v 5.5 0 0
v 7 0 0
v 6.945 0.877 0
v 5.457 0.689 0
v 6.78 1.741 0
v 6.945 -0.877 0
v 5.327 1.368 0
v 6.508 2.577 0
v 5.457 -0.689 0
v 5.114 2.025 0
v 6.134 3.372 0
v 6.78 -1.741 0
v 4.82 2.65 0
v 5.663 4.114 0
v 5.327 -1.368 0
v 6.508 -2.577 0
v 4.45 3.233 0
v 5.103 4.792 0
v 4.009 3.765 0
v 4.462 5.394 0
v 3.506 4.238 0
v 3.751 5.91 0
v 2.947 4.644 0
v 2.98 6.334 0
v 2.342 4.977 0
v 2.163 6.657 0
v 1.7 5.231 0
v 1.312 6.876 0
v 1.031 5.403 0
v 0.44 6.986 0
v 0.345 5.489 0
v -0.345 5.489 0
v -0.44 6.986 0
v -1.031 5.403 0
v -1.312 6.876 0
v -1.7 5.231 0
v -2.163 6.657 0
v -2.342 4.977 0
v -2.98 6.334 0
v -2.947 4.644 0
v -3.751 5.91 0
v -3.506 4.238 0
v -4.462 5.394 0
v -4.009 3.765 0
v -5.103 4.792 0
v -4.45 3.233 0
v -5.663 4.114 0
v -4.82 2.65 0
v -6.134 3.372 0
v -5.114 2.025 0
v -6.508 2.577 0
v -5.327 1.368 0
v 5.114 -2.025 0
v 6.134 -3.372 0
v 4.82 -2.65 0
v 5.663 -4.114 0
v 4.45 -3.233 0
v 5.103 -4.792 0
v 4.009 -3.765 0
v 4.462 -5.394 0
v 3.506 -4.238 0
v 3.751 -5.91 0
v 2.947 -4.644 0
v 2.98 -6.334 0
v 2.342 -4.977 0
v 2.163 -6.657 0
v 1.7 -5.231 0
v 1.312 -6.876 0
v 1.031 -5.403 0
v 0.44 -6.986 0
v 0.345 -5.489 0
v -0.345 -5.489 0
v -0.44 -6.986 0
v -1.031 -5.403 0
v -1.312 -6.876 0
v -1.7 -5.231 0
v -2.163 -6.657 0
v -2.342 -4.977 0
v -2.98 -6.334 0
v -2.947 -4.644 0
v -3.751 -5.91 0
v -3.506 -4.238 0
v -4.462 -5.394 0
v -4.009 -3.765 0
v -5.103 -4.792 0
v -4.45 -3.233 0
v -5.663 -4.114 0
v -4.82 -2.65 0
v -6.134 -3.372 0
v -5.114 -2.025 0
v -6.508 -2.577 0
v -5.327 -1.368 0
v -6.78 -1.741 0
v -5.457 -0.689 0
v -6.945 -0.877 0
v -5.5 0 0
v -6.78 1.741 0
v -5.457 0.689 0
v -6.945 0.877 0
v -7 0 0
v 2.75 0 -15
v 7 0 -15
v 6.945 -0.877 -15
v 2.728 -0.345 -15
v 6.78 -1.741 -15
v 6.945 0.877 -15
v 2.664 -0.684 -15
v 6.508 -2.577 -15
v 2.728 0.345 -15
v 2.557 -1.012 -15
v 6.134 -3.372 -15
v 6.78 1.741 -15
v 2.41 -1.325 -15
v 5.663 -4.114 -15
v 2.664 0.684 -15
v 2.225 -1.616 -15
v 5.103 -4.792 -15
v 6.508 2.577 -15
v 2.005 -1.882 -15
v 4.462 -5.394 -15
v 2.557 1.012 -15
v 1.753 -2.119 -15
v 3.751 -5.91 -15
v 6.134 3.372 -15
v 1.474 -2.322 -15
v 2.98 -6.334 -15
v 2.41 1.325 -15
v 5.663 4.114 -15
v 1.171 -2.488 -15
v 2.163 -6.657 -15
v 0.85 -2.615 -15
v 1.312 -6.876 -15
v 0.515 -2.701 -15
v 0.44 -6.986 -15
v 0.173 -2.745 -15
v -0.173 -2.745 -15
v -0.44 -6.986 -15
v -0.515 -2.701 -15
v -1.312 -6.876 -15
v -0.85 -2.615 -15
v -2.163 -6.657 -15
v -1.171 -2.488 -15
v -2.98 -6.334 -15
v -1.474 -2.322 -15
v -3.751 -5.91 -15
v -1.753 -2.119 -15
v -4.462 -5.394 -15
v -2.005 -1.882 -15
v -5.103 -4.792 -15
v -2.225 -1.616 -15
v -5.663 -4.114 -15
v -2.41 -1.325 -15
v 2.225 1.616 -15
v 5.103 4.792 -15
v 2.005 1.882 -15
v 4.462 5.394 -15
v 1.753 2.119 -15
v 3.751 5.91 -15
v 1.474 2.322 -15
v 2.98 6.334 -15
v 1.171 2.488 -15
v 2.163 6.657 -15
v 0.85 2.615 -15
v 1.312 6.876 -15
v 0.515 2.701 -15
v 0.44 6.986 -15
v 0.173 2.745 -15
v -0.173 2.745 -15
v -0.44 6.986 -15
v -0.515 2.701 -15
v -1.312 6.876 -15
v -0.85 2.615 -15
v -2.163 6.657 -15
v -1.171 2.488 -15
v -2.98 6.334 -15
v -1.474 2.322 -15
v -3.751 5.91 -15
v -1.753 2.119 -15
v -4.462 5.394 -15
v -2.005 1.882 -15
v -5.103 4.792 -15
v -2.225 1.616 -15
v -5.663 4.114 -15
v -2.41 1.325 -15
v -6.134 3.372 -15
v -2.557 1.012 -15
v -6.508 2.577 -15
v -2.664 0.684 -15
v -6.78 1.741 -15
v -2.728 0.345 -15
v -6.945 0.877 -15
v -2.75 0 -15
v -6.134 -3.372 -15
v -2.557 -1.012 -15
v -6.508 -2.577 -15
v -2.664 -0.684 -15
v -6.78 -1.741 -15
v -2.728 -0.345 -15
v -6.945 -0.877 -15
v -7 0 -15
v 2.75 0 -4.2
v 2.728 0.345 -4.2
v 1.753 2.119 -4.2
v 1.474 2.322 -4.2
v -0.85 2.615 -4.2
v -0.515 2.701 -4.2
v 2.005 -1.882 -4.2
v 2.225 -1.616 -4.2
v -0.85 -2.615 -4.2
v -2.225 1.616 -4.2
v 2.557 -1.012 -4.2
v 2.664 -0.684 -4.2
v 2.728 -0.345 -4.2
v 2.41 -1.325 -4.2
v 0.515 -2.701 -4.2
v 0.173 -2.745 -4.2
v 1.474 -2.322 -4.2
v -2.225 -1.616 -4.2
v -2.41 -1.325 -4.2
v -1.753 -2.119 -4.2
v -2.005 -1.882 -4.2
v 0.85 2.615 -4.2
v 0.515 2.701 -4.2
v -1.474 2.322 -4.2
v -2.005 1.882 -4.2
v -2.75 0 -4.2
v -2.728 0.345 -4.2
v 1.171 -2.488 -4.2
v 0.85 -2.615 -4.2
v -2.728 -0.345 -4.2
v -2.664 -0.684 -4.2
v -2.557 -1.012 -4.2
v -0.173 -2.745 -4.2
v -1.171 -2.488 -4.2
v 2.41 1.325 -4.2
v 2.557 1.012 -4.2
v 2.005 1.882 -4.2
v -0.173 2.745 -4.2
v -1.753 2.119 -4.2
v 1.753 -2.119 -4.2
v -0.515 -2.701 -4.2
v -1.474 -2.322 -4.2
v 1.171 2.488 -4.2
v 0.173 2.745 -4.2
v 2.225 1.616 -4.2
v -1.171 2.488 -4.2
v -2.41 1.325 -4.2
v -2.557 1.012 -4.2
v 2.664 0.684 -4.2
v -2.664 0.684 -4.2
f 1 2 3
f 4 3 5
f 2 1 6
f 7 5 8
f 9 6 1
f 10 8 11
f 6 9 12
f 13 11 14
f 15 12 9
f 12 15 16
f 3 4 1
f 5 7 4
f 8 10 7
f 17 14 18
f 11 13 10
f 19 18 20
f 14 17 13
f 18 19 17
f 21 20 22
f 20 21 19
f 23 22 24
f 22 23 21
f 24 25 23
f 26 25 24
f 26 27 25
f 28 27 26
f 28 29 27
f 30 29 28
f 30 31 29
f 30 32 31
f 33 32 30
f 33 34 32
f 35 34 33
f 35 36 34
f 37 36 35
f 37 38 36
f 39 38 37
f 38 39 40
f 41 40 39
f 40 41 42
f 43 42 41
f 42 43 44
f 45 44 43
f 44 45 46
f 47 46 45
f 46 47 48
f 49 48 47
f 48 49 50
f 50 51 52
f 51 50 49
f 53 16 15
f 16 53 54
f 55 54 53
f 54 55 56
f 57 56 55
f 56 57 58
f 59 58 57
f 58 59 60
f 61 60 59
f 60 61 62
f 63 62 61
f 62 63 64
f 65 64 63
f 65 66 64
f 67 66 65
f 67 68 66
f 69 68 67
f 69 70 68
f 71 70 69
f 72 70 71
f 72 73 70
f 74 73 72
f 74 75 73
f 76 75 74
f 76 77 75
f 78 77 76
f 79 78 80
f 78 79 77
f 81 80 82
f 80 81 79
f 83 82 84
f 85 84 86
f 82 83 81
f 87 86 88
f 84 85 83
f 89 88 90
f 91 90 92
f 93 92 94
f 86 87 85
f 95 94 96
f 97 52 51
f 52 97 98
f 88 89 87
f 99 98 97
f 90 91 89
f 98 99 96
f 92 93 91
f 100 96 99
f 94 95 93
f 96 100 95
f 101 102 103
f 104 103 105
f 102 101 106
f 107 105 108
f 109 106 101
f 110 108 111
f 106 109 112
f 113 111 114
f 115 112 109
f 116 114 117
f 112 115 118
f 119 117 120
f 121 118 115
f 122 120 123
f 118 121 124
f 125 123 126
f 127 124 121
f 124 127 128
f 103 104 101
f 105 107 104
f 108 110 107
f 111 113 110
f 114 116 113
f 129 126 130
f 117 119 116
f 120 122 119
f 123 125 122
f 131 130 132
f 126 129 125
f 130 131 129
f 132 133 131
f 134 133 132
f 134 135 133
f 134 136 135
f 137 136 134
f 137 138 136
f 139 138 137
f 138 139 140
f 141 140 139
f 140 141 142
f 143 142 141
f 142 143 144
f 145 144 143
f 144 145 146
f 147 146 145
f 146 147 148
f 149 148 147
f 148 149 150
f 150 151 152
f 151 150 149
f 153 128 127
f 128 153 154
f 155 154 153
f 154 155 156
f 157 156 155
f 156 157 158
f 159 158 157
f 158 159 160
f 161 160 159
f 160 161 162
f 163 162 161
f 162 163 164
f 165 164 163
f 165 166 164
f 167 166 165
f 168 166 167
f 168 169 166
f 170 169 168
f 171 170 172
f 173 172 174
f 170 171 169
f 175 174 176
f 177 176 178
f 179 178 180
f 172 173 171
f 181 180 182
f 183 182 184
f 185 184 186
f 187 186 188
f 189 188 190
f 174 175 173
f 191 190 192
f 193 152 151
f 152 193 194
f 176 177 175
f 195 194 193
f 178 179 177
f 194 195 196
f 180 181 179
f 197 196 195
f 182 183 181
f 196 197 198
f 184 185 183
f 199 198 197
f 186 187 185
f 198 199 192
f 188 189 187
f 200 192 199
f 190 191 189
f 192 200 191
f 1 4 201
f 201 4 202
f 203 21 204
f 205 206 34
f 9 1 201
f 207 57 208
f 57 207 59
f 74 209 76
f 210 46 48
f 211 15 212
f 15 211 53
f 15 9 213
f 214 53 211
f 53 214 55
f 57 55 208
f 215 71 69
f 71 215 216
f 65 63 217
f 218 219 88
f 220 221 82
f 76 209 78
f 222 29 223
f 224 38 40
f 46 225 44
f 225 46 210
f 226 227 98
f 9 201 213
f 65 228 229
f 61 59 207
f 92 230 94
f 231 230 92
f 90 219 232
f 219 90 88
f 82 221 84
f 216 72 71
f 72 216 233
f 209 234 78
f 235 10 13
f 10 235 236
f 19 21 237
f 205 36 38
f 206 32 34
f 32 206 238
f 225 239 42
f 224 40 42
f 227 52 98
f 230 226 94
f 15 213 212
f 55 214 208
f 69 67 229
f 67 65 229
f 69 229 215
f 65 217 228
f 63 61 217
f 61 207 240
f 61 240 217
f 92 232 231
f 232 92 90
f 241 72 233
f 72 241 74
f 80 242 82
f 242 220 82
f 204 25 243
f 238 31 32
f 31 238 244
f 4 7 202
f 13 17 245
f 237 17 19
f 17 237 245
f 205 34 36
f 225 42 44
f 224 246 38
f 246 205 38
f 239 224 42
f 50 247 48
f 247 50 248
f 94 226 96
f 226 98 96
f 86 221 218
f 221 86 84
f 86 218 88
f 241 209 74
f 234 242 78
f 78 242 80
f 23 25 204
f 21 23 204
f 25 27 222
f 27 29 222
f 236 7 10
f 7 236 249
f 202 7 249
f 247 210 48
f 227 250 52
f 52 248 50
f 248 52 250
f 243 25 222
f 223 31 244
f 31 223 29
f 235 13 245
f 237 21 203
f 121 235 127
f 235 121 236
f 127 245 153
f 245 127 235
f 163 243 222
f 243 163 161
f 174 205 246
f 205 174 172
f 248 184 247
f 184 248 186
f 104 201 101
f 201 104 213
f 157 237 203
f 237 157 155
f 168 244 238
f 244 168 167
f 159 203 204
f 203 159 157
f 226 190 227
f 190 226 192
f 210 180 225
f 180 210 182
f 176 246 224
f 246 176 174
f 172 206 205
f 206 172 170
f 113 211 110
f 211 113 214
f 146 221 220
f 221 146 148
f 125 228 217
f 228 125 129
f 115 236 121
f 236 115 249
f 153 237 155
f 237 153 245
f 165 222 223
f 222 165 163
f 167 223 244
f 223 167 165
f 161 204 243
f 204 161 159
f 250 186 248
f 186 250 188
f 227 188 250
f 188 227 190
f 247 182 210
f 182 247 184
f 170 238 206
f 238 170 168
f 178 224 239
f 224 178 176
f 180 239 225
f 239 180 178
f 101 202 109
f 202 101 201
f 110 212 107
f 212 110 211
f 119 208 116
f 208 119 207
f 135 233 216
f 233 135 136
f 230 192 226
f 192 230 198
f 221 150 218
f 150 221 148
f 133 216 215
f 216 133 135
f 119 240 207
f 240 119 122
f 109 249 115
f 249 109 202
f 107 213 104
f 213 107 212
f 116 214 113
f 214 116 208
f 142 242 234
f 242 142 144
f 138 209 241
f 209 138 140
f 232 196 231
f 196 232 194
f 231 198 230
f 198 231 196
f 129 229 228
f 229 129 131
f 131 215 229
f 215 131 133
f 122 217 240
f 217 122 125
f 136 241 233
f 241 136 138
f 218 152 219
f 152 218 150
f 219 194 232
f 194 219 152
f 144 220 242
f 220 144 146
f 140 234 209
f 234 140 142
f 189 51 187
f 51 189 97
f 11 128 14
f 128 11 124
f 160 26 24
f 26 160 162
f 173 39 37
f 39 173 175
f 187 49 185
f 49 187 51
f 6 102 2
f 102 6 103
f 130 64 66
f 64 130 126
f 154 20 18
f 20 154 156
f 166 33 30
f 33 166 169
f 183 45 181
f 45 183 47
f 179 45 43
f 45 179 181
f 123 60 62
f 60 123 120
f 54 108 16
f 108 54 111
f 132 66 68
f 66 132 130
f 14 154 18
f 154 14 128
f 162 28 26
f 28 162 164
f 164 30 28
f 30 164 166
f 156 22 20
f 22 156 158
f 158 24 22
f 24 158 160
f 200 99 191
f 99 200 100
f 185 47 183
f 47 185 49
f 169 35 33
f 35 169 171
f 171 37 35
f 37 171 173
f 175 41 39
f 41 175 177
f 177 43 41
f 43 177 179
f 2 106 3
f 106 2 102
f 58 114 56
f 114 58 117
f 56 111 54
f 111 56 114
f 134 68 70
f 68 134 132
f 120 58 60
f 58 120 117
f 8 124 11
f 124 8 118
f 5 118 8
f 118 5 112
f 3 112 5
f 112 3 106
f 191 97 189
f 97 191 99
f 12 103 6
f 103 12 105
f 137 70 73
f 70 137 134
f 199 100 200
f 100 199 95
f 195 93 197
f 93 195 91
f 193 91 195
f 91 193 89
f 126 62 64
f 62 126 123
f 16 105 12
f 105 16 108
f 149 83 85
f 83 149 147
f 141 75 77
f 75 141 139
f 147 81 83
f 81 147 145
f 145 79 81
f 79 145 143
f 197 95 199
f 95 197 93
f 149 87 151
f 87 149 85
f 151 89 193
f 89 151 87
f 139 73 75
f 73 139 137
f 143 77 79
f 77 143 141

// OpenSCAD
$fn = 50;


difference() {
	union() {
		translate(v = [0, 0, -15.0000000000]) {
			cylinder(h = 15, r = 7.0000000000);
		}
		cylinder(h = 0, r = 16.0000000000);
	}
	union() {
		translate(v = [0, 0, 0]) {
			rotate(a = [0, 0, 0]) {
				difference() {
					union() {
						#translate(v = [0, 0, -15.0000000000]) {
							cylinder(h = 15, r = 2.2500000000);
						}
						#translate(v = [0, 0, -4.2000000000]) {
							cylinder(h = 4.2000000000, r1 = 2.7500000000, r2 = 5.5000000000);
						}
						#translate(v = [0, 0, -15.0000000000]) {
							cylinder(h = 15, r = 2.7500000000);
						}
						#translate(v = [0, 0, -15.0000000000]) {
							cylinder(h = 15, r = 2.2500000000);
						}
					}
					union();
				}
			}
		}
	}
}
